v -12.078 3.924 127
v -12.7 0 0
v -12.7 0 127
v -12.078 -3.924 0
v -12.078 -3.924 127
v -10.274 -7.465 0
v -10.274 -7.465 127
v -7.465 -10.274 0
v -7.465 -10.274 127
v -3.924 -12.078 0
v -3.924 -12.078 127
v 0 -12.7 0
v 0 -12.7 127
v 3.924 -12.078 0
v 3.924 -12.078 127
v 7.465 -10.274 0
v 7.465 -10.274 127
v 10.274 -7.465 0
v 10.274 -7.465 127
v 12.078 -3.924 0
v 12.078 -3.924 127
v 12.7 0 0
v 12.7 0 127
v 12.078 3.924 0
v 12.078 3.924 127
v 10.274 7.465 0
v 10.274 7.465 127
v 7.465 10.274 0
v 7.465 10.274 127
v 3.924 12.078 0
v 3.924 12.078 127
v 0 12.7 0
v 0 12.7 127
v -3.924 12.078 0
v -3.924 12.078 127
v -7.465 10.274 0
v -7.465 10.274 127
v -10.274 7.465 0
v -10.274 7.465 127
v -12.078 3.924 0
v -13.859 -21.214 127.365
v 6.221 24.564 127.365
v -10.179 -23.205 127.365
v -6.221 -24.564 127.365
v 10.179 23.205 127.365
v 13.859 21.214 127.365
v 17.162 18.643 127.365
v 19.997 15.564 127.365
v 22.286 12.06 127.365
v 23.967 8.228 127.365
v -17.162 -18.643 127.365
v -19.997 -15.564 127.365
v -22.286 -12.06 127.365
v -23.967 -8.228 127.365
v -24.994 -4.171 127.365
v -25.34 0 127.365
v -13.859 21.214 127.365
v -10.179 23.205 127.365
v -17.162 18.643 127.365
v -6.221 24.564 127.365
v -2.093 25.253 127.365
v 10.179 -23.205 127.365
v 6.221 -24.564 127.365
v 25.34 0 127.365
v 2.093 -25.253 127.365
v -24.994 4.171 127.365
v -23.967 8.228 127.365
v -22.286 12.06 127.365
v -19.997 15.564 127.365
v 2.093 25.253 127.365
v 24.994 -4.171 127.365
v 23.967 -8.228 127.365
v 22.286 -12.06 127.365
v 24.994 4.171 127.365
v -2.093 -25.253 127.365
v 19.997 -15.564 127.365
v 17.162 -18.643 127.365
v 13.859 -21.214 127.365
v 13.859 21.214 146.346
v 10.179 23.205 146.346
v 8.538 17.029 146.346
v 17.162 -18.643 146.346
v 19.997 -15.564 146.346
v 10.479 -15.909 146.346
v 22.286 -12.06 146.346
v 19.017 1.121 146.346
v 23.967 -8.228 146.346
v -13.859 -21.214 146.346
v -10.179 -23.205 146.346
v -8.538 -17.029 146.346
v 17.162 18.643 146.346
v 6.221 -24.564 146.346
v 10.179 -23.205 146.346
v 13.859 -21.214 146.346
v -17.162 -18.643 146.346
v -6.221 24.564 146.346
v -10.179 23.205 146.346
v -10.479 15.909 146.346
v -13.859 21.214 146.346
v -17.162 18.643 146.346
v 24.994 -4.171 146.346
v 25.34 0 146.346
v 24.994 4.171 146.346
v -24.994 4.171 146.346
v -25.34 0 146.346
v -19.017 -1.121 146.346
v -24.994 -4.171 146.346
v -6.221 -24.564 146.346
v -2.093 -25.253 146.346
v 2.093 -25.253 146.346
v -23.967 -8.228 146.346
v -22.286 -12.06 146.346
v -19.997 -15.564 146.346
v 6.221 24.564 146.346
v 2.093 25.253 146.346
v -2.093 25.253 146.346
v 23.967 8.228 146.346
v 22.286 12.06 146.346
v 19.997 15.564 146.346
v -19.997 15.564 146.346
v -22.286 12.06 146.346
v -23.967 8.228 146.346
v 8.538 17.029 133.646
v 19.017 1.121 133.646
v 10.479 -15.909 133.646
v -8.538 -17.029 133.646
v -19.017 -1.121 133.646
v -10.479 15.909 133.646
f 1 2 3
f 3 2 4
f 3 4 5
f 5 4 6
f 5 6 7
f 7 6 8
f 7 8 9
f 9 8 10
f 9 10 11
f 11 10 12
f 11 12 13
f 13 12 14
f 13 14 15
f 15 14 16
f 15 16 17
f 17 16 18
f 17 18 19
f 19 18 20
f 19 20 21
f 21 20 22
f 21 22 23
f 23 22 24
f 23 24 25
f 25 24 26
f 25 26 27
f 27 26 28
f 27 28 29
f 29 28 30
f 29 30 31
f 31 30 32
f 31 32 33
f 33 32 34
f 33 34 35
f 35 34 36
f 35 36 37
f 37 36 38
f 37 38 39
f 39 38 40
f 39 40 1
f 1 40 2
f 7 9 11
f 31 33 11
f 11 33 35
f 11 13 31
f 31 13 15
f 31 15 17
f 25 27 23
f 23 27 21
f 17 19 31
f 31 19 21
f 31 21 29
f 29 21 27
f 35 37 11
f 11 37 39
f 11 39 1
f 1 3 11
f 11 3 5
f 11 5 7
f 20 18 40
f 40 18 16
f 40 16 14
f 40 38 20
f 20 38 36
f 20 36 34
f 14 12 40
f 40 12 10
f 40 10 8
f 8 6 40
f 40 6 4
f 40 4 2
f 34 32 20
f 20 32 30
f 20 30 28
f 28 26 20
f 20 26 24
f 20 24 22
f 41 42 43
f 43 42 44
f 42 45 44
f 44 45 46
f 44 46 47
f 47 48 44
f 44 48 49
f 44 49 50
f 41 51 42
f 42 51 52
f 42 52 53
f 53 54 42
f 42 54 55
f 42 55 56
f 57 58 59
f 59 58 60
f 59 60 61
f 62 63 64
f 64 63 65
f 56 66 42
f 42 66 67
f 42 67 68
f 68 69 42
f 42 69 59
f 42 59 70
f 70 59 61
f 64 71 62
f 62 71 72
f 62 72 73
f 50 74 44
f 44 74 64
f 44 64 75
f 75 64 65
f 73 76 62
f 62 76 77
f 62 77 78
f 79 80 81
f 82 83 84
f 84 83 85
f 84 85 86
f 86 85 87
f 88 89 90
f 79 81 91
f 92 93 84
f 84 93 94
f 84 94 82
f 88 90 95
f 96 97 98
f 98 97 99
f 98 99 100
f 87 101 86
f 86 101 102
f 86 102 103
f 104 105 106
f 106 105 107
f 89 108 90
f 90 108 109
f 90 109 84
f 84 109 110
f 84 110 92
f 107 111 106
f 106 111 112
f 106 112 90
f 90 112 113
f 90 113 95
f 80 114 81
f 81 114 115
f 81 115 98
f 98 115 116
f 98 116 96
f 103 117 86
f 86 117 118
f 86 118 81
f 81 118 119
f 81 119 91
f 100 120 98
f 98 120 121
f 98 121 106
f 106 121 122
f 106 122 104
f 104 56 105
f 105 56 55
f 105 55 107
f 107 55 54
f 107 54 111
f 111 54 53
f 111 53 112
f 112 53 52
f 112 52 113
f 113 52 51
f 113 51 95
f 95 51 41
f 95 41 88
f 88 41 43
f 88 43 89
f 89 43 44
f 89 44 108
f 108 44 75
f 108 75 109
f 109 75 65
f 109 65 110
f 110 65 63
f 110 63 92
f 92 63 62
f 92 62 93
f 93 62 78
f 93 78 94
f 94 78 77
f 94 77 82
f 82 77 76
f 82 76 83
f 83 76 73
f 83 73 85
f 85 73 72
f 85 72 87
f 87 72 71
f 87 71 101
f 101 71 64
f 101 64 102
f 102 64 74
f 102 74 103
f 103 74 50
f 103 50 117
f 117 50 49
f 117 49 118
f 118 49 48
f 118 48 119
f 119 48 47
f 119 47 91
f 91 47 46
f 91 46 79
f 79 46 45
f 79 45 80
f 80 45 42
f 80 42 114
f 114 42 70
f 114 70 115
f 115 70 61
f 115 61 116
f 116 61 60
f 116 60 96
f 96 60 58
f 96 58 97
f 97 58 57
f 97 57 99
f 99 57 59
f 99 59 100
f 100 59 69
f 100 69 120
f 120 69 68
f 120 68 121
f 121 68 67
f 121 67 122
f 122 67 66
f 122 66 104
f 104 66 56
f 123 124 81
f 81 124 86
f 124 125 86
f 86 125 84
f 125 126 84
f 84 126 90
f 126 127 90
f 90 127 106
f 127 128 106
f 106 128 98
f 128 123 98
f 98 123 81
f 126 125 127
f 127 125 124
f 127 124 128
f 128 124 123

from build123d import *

# Parameters (mm, degrees)
SKETCH1_R           = 12.699809316
BOSS_EXTRUDE1_DEPTH = 127
SKETCH3_W           = 18.981342934
SKETCH3_H           = 25.339659509
CUT_EXTRUDE1_DEPTH  = 12.7


with BuildPart() as part:
    # Sketch1 → Boss-Extrude1 (new body)
    with BuildSketch(Plane.XY):
        Circle(SKETCH1_R)
    extrude(amount=BOSS_EXTRUDE1_DEPTH)


with BuildPart() as body_2:
    # Sketch3 → Revolve1 (revolve)
    with BuildSketch(Plane(origin=(0, 0, 0), x_dir=(0, 0, -1), z_dir=(1, 0, 0))):
        with Locations((-136.855411879, 12.669829755)):
            Rectangle(SKETCH3_W, SKETCH3_H)
    revolve(axis=Axis((0, 0, 127.364740412), (0, 0, 1)))

    # Sketch4 → Cut-Extrude1 (cut)
    with BuildSketch(Plane.XY.offset(146.346083346)):
        Polygon((8.53807174, 17.029498846), (-10.478942745, 15.908936449), (-19.017014485, -1.120562397), (-8.53807174, -17.029498846), (10.478942745, -15.908936449), (19.017014485, 1.120562397), align=None)
    extrude(amount=-CUT_EXTRUDE1_DEPTH, mode=Mode.SUBTRACT)


solid = Compound([part.part, body_2.part])
